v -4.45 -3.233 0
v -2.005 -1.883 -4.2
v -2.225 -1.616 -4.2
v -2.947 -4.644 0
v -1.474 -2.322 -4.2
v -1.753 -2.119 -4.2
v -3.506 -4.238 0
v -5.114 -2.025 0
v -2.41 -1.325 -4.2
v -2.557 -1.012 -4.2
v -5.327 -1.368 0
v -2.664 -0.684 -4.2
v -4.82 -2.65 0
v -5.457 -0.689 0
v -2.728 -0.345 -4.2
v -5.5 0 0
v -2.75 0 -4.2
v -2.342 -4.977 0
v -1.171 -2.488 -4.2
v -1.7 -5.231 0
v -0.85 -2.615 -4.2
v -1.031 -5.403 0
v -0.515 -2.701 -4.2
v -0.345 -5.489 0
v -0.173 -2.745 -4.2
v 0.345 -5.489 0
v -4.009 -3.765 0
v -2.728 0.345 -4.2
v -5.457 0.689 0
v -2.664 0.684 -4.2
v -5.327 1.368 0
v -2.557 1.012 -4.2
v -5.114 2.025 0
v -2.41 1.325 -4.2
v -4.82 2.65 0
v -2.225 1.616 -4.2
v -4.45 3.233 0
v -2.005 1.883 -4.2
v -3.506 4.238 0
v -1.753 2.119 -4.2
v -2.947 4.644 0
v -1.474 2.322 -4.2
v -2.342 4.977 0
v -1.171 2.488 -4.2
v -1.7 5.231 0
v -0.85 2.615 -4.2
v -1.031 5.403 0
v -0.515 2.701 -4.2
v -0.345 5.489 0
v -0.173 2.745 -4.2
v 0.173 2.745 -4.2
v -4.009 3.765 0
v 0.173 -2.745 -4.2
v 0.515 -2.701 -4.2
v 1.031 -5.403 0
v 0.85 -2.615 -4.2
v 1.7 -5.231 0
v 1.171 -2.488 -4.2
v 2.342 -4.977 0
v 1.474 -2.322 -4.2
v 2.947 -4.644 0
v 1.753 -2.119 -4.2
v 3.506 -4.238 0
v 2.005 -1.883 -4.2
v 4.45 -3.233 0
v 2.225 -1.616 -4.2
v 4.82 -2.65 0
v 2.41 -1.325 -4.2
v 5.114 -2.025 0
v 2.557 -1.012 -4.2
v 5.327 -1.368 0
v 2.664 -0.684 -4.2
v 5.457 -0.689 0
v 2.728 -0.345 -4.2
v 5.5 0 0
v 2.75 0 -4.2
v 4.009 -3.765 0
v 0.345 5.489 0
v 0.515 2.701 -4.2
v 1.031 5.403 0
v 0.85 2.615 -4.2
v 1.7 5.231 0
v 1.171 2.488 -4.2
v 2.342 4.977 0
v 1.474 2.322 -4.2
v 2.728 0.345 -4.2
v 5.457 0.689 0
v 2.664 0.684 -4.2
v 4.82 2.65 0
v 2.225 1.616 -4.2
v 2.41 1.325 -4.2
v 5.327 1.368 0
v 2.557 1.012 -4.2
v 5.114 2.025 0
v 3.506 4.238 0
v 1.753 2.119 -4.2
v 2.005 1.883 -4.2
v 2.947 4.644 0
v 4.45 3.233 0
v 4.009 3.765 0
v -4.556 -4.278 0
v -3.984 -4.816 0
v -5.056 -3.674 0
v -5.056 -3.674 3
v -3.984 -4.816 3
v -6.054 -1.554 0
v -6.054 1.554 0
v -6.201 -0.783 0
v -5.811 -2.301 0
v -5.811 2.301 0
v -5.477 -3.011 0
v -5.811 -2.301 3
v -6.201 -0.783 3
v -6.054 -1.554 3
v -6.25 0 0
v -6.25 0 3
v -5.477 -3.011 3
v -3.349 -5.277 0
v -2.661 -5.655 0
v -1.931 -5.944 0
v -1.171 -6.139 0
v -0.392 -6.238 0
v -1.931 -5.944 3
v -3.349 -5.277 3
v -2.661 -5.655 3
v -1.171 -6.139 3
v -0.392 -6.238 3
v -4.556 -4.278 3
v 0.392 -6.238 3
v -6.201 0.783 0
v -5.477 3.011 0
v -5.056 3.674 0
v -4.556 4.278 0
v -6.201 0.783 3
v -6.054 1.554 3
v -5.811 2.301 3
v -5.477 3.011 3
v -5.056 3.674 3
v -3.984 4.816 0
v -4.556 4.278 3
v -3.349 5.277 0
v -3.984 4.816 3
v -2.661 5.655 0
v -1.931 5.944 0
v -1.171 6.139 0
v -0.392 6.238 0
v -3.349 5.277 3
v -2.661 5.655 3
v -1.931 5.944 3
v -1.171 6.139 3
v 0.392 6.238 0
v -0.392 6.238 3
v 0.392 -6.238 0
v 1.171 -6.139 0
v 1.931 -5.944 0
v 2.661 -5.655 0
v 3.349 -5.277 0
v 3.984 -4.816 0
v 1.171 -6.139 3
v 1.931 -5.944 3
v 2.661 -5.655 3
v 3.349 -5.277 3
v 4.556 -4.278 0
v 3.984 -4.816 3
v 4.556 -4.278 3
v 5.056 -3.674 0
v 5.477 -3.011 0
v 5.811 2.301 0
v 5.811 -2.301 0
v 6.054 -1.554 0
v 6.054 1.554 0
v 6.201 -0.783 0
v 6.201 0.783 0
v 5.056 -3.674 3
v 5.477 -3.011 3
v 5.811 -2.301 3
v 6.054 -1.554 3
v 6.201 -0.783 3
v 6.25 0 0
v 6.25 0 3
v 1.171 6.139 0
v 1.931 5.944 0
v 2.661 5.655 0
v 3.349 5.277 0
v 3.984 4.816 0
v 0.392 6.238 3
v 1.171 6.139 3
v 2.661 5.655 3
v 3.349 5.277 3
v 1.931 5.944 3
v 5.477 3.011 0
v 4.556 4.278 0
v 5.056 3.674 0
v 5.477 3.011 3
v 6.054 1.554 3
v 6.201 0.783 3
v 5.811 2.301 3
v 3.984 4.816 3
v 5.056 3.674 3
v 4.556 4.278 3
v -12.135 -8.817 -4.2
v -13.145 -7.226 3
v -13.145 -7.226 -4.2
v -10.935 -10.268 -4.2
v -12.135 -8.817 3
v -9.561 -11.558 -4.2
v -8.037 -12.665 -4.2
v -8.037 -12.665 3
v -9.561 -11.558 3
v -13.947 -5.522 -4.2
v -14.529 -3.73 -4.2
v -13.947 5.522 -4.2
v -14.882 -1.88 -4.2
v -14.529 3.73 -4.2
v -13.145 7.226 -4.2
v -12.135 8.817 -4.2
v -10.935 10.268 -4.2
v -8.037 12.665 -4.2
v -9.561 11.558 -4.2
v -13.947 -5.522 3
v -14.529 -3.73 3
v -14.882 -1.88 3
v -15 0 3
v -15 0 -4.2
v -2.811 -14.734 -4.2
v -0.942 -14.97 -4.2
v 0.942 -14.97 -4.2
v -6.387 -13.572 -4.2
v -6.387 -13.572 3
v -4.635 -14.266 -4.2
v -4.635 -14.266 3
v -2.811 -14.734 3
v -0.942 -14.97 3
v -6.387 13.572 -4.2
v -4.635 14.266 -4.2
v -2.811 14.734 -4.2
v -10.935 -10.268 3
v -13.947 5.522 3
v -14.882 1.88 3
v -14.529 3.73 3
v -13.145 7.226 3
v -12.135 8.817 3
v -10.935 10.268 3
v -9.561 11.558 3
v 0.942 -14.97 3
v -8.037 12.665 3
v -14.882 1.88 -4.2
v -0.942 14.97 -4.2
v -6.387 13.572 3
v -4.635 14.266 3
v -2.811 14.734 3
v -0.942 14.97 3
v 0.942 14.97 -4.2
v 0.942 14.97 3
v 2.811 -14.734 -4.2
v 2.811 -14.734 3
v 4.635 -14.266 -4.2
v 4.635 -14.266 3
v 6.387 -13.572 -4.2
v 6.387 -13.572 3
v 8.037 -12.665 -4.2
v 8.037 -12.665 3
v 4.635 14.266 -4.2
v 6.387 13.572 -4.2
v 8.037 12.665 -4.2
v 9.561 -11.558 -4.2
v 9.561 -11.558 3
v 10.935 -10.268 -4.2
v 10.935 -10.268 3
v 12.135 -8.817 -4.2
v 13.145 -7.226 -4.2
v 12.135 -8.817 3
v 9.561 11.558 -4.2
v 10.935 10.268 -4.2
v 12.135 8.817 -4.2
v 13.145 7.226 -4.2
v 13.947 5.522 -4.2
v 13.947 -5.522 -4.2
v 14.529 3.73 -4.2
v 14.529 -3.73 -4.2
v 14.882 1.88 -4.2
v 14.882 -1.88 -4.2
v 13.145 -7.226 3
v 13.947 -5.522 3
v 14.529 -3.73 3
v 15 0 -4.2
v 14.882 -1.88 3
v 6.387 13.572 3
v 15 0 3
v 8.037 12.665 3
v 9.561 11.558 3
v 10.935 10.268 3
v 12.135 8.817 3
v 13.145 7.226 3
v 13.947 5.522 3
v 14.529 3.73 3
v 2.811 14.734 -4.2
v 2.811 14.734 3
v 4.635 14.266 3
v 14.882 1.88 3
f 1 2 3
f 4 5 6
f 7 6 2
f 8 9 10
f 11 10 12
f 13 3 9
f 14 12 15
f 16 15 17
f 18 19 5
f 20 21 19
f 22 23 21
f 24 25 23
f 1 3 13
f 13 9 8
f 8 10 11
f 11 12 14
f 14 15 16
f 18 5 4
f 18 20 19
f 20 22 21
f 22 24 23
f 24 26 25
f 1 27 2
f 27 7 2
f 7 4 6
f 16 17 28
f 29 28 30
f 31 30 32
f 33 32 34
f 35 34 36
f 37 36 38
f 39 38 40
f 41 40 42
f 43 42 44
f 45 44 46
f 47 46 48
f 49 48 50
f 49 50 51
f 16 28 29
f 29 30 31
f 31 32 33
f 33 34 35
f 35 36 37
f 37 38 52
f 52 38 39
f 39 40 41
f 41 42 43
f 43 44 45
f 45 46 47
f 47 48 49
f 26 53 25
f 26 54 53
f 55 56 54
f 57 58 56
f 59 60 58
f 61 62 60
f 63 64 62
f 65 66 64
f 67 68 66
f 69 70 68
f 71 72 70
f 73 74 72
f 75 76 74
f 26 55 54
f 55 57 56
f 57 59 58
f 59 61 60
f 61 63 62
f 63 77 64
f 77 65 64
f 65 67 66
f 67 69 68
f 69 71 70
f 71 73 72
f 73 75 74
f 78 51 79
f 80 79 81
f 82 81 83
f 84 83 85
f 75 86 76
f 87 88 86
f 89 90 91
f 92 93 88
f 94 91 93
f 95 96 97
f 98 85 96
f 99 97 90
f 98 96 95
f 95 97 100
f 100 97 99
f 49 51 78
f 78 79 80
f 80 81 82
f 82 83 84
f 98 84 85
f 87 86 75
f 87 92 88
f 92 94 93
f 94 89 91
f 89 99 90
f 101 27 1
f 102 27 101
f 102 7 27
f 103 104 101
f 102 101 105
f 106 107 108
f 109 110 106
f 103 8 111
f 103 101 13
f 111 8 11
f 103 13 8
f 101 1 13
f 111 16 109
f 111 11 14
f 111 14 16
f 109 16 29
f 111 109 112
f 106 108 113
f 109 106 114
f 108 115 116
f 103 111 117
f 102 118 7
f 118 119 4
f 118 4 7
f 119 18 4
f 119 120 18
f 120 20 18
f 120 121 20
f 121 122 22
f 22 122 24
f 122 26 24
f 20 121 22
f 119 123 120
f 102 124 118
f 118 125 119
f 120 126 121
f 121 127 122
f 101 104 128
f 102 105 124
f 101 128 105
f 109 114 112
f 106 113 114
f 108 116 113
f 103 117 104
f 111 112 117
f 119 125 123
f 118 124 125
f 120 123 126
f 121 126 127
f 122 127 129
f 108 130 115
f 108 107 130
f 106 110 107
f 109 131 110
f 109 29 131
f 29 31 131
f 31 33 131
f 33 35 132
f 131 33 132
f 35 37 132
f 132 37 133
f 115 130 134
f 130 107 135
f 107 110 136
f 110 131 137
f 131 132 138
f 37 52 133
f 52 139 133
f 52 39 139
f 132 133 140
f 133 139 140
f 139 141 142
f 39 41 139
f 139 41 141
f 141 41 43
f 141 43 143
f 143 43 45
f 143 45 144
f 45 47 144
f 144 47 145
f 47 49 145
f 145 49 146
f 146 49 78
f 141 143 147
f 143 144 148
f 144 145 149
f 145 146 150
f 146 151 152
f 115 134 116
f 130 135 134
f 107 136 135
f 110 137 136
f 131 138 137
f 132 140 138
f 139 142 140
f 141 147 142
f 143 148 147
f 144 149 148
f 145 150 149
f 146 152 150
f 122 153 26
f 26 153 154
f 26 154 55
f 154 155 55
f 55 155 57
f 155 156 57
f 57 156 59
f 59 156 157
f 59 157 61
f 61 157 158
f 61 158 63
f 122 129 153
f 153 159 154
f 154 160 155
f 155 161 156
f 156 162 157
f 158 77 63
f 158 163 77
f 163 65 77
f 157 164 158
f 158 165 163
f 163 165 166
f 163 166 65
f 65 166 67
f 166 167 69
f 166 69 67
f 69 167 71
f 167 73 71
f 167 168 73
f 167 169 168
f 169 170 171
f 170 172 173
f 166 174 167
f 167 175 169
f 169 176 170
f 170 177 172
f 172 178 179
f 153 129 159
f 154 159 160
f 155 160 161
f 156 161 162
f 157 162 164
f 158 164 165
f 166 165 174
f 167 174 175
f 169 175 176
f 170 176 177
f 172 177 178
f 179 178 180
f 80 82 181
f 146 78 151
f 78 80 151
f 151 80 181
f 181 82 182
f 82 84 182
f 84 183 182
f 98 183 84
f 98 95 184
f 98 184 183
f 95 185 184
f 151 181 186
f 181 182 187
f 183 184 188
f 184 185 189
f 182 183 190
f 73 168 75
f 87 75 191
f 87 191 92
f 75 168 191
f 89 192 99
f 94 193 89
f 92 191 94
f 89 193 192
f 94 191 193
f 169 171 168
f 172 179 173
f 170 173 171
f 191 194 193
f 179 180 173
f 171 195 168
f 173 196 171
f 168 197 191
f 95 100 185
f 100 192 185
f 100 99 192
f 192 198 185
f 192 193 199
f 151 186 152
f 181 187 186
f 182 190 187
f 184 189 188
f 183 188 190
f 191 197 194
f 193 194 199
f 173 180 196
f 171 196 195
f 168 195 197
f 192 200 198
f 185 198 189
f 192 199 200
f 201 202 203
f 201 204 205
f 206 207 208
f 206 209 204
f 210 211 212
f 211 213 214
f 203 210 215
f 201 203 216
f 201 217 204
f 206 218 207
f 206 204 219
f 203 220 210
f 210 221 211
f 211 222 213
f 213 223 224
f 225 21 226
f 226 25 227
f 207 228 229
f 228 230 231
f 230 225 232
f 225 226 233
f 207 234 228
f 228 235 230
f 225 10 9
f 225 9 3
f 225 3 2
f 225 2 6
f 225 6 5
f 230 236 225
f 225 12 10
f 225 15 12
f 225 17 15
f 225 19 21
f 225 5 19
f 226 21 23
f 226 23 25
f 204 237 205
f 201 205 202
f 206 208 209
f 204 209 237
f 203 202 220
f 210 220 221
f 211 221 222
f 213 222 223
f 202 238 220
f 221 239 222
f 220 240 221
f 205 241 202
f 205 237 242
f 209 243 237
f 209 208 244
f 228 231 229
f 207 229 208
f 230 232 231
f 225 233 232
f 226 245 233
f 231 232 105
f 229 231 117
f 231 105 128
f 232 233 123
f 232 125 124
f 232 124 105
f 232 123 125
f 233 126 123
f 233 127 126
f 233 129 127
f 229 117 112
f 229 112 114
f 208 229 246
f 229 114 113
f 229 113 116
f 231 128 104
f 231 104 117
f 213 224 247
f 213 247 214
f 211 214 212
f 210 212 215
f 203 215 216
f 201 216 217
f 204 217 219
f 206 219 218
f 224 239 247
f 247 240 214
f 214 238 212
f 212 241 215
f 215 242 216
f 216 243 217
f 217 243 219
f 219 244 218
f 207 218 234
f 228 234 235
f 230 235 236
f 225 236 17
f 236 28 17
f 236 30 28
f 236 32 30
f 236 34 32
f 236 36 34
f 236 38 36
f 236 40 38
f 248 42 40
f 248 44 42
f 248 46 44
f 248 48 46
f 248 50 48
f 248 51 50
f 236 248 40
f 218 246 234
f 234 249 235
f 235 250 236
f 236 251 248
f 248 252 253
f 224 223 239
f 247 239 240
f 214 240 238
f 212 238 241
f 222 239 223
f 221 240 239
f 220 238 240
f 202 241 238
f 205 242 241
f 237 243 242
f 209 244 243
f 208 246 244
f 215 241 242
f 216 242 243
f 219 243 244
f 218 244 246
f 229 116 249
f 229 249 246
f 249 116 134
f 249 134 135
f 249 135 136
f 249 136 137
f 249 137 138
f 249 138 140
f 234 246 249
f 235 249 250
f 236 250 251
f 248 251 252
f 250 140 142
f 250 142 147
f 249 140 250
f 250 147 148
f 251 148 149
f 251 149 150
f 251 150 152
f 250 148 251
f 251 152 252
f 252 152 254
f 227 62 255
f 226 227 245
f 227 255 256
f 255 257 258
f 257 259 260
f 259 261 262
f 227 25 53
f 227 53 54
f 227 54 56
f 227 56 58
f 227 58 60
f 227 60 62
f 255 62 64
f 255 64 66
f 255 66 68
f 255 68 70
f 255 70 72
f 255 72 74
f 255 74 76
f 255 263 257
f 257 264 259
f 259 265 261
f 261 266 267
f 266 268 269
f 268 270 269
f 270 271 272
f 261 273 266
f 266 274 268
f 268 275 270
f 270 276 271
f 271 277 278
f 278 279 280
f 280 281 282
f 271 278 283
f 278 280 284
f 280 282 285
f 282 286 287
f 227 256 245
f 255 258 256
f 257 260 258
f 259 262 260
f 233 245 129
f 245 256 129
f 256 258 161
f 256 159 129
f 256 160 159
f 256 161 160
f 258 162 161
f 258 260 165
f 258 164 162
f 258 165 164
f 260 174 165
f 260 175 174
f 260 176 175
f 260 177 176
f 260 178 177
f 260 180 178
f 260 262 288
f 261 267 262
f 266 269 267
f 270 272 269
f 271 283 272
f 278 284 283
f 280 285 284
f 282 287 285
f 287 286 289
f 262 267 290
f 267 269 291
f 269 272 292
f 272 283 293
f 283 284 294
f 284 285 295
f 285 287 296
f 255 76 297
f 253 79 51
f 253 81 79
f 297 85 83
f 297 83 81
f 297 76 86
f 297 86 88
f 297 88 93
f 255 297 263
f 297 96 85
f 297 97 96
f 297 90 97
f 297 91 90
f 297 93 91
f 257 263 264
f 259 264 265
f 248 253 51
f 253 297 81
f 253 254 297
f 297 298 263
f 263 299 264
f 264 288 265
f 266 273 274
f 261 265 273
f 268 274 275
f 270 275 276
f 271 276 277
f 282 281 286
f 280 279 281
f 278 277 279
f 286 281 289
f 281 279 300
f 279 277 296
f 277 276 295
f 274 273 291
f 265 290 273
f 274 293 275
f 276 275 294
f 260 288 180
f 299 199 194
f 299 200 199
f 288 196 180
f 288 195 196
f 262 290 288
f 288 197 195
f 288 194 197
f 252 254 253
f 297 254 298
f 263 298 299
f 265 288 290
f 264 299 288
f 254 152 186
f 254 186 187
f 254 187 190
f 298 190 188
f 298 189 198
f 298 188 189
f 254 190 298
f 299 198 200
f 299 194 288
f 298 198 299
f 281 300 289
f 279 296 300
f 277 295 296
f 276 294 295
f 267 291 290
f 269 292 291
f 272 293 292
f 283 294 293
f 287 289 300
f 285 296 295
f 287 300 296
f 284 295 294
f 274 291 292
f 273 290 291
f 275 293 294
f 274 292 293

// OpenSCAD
$fn = 50;

difference() {
	union() {
		translate(v = [0, 0, -4.2]) {
			cylinder(h = 7.2, r = 15.0);
		}
	}
	union() {
		translate(v = [0, 0, 0]) {
			rotate(a = [0, 0, 0]) {
				difference() {
					union() {
						translate(v = [0, 0, -7.2]) {
							cylinder(h = 7.2, r = 2.25);
						}
						translate(v = [0, 0, -4.2]) {
							cylinder(h = 4.2, r1 = 2.75, r2 = 5.5);
						}
						translate(v = [0, 0, -7.2]) {
							cylinder(h = 7.2, r = 2.75);
						}
						translate(v = [0, 0, -7.2]) {
							cylinder(h = 7.2, r = 2.25);
						}
					}
					union();
				}
			}
		}
		#cylinder(h = 3, r = 6.25);
	}
}
